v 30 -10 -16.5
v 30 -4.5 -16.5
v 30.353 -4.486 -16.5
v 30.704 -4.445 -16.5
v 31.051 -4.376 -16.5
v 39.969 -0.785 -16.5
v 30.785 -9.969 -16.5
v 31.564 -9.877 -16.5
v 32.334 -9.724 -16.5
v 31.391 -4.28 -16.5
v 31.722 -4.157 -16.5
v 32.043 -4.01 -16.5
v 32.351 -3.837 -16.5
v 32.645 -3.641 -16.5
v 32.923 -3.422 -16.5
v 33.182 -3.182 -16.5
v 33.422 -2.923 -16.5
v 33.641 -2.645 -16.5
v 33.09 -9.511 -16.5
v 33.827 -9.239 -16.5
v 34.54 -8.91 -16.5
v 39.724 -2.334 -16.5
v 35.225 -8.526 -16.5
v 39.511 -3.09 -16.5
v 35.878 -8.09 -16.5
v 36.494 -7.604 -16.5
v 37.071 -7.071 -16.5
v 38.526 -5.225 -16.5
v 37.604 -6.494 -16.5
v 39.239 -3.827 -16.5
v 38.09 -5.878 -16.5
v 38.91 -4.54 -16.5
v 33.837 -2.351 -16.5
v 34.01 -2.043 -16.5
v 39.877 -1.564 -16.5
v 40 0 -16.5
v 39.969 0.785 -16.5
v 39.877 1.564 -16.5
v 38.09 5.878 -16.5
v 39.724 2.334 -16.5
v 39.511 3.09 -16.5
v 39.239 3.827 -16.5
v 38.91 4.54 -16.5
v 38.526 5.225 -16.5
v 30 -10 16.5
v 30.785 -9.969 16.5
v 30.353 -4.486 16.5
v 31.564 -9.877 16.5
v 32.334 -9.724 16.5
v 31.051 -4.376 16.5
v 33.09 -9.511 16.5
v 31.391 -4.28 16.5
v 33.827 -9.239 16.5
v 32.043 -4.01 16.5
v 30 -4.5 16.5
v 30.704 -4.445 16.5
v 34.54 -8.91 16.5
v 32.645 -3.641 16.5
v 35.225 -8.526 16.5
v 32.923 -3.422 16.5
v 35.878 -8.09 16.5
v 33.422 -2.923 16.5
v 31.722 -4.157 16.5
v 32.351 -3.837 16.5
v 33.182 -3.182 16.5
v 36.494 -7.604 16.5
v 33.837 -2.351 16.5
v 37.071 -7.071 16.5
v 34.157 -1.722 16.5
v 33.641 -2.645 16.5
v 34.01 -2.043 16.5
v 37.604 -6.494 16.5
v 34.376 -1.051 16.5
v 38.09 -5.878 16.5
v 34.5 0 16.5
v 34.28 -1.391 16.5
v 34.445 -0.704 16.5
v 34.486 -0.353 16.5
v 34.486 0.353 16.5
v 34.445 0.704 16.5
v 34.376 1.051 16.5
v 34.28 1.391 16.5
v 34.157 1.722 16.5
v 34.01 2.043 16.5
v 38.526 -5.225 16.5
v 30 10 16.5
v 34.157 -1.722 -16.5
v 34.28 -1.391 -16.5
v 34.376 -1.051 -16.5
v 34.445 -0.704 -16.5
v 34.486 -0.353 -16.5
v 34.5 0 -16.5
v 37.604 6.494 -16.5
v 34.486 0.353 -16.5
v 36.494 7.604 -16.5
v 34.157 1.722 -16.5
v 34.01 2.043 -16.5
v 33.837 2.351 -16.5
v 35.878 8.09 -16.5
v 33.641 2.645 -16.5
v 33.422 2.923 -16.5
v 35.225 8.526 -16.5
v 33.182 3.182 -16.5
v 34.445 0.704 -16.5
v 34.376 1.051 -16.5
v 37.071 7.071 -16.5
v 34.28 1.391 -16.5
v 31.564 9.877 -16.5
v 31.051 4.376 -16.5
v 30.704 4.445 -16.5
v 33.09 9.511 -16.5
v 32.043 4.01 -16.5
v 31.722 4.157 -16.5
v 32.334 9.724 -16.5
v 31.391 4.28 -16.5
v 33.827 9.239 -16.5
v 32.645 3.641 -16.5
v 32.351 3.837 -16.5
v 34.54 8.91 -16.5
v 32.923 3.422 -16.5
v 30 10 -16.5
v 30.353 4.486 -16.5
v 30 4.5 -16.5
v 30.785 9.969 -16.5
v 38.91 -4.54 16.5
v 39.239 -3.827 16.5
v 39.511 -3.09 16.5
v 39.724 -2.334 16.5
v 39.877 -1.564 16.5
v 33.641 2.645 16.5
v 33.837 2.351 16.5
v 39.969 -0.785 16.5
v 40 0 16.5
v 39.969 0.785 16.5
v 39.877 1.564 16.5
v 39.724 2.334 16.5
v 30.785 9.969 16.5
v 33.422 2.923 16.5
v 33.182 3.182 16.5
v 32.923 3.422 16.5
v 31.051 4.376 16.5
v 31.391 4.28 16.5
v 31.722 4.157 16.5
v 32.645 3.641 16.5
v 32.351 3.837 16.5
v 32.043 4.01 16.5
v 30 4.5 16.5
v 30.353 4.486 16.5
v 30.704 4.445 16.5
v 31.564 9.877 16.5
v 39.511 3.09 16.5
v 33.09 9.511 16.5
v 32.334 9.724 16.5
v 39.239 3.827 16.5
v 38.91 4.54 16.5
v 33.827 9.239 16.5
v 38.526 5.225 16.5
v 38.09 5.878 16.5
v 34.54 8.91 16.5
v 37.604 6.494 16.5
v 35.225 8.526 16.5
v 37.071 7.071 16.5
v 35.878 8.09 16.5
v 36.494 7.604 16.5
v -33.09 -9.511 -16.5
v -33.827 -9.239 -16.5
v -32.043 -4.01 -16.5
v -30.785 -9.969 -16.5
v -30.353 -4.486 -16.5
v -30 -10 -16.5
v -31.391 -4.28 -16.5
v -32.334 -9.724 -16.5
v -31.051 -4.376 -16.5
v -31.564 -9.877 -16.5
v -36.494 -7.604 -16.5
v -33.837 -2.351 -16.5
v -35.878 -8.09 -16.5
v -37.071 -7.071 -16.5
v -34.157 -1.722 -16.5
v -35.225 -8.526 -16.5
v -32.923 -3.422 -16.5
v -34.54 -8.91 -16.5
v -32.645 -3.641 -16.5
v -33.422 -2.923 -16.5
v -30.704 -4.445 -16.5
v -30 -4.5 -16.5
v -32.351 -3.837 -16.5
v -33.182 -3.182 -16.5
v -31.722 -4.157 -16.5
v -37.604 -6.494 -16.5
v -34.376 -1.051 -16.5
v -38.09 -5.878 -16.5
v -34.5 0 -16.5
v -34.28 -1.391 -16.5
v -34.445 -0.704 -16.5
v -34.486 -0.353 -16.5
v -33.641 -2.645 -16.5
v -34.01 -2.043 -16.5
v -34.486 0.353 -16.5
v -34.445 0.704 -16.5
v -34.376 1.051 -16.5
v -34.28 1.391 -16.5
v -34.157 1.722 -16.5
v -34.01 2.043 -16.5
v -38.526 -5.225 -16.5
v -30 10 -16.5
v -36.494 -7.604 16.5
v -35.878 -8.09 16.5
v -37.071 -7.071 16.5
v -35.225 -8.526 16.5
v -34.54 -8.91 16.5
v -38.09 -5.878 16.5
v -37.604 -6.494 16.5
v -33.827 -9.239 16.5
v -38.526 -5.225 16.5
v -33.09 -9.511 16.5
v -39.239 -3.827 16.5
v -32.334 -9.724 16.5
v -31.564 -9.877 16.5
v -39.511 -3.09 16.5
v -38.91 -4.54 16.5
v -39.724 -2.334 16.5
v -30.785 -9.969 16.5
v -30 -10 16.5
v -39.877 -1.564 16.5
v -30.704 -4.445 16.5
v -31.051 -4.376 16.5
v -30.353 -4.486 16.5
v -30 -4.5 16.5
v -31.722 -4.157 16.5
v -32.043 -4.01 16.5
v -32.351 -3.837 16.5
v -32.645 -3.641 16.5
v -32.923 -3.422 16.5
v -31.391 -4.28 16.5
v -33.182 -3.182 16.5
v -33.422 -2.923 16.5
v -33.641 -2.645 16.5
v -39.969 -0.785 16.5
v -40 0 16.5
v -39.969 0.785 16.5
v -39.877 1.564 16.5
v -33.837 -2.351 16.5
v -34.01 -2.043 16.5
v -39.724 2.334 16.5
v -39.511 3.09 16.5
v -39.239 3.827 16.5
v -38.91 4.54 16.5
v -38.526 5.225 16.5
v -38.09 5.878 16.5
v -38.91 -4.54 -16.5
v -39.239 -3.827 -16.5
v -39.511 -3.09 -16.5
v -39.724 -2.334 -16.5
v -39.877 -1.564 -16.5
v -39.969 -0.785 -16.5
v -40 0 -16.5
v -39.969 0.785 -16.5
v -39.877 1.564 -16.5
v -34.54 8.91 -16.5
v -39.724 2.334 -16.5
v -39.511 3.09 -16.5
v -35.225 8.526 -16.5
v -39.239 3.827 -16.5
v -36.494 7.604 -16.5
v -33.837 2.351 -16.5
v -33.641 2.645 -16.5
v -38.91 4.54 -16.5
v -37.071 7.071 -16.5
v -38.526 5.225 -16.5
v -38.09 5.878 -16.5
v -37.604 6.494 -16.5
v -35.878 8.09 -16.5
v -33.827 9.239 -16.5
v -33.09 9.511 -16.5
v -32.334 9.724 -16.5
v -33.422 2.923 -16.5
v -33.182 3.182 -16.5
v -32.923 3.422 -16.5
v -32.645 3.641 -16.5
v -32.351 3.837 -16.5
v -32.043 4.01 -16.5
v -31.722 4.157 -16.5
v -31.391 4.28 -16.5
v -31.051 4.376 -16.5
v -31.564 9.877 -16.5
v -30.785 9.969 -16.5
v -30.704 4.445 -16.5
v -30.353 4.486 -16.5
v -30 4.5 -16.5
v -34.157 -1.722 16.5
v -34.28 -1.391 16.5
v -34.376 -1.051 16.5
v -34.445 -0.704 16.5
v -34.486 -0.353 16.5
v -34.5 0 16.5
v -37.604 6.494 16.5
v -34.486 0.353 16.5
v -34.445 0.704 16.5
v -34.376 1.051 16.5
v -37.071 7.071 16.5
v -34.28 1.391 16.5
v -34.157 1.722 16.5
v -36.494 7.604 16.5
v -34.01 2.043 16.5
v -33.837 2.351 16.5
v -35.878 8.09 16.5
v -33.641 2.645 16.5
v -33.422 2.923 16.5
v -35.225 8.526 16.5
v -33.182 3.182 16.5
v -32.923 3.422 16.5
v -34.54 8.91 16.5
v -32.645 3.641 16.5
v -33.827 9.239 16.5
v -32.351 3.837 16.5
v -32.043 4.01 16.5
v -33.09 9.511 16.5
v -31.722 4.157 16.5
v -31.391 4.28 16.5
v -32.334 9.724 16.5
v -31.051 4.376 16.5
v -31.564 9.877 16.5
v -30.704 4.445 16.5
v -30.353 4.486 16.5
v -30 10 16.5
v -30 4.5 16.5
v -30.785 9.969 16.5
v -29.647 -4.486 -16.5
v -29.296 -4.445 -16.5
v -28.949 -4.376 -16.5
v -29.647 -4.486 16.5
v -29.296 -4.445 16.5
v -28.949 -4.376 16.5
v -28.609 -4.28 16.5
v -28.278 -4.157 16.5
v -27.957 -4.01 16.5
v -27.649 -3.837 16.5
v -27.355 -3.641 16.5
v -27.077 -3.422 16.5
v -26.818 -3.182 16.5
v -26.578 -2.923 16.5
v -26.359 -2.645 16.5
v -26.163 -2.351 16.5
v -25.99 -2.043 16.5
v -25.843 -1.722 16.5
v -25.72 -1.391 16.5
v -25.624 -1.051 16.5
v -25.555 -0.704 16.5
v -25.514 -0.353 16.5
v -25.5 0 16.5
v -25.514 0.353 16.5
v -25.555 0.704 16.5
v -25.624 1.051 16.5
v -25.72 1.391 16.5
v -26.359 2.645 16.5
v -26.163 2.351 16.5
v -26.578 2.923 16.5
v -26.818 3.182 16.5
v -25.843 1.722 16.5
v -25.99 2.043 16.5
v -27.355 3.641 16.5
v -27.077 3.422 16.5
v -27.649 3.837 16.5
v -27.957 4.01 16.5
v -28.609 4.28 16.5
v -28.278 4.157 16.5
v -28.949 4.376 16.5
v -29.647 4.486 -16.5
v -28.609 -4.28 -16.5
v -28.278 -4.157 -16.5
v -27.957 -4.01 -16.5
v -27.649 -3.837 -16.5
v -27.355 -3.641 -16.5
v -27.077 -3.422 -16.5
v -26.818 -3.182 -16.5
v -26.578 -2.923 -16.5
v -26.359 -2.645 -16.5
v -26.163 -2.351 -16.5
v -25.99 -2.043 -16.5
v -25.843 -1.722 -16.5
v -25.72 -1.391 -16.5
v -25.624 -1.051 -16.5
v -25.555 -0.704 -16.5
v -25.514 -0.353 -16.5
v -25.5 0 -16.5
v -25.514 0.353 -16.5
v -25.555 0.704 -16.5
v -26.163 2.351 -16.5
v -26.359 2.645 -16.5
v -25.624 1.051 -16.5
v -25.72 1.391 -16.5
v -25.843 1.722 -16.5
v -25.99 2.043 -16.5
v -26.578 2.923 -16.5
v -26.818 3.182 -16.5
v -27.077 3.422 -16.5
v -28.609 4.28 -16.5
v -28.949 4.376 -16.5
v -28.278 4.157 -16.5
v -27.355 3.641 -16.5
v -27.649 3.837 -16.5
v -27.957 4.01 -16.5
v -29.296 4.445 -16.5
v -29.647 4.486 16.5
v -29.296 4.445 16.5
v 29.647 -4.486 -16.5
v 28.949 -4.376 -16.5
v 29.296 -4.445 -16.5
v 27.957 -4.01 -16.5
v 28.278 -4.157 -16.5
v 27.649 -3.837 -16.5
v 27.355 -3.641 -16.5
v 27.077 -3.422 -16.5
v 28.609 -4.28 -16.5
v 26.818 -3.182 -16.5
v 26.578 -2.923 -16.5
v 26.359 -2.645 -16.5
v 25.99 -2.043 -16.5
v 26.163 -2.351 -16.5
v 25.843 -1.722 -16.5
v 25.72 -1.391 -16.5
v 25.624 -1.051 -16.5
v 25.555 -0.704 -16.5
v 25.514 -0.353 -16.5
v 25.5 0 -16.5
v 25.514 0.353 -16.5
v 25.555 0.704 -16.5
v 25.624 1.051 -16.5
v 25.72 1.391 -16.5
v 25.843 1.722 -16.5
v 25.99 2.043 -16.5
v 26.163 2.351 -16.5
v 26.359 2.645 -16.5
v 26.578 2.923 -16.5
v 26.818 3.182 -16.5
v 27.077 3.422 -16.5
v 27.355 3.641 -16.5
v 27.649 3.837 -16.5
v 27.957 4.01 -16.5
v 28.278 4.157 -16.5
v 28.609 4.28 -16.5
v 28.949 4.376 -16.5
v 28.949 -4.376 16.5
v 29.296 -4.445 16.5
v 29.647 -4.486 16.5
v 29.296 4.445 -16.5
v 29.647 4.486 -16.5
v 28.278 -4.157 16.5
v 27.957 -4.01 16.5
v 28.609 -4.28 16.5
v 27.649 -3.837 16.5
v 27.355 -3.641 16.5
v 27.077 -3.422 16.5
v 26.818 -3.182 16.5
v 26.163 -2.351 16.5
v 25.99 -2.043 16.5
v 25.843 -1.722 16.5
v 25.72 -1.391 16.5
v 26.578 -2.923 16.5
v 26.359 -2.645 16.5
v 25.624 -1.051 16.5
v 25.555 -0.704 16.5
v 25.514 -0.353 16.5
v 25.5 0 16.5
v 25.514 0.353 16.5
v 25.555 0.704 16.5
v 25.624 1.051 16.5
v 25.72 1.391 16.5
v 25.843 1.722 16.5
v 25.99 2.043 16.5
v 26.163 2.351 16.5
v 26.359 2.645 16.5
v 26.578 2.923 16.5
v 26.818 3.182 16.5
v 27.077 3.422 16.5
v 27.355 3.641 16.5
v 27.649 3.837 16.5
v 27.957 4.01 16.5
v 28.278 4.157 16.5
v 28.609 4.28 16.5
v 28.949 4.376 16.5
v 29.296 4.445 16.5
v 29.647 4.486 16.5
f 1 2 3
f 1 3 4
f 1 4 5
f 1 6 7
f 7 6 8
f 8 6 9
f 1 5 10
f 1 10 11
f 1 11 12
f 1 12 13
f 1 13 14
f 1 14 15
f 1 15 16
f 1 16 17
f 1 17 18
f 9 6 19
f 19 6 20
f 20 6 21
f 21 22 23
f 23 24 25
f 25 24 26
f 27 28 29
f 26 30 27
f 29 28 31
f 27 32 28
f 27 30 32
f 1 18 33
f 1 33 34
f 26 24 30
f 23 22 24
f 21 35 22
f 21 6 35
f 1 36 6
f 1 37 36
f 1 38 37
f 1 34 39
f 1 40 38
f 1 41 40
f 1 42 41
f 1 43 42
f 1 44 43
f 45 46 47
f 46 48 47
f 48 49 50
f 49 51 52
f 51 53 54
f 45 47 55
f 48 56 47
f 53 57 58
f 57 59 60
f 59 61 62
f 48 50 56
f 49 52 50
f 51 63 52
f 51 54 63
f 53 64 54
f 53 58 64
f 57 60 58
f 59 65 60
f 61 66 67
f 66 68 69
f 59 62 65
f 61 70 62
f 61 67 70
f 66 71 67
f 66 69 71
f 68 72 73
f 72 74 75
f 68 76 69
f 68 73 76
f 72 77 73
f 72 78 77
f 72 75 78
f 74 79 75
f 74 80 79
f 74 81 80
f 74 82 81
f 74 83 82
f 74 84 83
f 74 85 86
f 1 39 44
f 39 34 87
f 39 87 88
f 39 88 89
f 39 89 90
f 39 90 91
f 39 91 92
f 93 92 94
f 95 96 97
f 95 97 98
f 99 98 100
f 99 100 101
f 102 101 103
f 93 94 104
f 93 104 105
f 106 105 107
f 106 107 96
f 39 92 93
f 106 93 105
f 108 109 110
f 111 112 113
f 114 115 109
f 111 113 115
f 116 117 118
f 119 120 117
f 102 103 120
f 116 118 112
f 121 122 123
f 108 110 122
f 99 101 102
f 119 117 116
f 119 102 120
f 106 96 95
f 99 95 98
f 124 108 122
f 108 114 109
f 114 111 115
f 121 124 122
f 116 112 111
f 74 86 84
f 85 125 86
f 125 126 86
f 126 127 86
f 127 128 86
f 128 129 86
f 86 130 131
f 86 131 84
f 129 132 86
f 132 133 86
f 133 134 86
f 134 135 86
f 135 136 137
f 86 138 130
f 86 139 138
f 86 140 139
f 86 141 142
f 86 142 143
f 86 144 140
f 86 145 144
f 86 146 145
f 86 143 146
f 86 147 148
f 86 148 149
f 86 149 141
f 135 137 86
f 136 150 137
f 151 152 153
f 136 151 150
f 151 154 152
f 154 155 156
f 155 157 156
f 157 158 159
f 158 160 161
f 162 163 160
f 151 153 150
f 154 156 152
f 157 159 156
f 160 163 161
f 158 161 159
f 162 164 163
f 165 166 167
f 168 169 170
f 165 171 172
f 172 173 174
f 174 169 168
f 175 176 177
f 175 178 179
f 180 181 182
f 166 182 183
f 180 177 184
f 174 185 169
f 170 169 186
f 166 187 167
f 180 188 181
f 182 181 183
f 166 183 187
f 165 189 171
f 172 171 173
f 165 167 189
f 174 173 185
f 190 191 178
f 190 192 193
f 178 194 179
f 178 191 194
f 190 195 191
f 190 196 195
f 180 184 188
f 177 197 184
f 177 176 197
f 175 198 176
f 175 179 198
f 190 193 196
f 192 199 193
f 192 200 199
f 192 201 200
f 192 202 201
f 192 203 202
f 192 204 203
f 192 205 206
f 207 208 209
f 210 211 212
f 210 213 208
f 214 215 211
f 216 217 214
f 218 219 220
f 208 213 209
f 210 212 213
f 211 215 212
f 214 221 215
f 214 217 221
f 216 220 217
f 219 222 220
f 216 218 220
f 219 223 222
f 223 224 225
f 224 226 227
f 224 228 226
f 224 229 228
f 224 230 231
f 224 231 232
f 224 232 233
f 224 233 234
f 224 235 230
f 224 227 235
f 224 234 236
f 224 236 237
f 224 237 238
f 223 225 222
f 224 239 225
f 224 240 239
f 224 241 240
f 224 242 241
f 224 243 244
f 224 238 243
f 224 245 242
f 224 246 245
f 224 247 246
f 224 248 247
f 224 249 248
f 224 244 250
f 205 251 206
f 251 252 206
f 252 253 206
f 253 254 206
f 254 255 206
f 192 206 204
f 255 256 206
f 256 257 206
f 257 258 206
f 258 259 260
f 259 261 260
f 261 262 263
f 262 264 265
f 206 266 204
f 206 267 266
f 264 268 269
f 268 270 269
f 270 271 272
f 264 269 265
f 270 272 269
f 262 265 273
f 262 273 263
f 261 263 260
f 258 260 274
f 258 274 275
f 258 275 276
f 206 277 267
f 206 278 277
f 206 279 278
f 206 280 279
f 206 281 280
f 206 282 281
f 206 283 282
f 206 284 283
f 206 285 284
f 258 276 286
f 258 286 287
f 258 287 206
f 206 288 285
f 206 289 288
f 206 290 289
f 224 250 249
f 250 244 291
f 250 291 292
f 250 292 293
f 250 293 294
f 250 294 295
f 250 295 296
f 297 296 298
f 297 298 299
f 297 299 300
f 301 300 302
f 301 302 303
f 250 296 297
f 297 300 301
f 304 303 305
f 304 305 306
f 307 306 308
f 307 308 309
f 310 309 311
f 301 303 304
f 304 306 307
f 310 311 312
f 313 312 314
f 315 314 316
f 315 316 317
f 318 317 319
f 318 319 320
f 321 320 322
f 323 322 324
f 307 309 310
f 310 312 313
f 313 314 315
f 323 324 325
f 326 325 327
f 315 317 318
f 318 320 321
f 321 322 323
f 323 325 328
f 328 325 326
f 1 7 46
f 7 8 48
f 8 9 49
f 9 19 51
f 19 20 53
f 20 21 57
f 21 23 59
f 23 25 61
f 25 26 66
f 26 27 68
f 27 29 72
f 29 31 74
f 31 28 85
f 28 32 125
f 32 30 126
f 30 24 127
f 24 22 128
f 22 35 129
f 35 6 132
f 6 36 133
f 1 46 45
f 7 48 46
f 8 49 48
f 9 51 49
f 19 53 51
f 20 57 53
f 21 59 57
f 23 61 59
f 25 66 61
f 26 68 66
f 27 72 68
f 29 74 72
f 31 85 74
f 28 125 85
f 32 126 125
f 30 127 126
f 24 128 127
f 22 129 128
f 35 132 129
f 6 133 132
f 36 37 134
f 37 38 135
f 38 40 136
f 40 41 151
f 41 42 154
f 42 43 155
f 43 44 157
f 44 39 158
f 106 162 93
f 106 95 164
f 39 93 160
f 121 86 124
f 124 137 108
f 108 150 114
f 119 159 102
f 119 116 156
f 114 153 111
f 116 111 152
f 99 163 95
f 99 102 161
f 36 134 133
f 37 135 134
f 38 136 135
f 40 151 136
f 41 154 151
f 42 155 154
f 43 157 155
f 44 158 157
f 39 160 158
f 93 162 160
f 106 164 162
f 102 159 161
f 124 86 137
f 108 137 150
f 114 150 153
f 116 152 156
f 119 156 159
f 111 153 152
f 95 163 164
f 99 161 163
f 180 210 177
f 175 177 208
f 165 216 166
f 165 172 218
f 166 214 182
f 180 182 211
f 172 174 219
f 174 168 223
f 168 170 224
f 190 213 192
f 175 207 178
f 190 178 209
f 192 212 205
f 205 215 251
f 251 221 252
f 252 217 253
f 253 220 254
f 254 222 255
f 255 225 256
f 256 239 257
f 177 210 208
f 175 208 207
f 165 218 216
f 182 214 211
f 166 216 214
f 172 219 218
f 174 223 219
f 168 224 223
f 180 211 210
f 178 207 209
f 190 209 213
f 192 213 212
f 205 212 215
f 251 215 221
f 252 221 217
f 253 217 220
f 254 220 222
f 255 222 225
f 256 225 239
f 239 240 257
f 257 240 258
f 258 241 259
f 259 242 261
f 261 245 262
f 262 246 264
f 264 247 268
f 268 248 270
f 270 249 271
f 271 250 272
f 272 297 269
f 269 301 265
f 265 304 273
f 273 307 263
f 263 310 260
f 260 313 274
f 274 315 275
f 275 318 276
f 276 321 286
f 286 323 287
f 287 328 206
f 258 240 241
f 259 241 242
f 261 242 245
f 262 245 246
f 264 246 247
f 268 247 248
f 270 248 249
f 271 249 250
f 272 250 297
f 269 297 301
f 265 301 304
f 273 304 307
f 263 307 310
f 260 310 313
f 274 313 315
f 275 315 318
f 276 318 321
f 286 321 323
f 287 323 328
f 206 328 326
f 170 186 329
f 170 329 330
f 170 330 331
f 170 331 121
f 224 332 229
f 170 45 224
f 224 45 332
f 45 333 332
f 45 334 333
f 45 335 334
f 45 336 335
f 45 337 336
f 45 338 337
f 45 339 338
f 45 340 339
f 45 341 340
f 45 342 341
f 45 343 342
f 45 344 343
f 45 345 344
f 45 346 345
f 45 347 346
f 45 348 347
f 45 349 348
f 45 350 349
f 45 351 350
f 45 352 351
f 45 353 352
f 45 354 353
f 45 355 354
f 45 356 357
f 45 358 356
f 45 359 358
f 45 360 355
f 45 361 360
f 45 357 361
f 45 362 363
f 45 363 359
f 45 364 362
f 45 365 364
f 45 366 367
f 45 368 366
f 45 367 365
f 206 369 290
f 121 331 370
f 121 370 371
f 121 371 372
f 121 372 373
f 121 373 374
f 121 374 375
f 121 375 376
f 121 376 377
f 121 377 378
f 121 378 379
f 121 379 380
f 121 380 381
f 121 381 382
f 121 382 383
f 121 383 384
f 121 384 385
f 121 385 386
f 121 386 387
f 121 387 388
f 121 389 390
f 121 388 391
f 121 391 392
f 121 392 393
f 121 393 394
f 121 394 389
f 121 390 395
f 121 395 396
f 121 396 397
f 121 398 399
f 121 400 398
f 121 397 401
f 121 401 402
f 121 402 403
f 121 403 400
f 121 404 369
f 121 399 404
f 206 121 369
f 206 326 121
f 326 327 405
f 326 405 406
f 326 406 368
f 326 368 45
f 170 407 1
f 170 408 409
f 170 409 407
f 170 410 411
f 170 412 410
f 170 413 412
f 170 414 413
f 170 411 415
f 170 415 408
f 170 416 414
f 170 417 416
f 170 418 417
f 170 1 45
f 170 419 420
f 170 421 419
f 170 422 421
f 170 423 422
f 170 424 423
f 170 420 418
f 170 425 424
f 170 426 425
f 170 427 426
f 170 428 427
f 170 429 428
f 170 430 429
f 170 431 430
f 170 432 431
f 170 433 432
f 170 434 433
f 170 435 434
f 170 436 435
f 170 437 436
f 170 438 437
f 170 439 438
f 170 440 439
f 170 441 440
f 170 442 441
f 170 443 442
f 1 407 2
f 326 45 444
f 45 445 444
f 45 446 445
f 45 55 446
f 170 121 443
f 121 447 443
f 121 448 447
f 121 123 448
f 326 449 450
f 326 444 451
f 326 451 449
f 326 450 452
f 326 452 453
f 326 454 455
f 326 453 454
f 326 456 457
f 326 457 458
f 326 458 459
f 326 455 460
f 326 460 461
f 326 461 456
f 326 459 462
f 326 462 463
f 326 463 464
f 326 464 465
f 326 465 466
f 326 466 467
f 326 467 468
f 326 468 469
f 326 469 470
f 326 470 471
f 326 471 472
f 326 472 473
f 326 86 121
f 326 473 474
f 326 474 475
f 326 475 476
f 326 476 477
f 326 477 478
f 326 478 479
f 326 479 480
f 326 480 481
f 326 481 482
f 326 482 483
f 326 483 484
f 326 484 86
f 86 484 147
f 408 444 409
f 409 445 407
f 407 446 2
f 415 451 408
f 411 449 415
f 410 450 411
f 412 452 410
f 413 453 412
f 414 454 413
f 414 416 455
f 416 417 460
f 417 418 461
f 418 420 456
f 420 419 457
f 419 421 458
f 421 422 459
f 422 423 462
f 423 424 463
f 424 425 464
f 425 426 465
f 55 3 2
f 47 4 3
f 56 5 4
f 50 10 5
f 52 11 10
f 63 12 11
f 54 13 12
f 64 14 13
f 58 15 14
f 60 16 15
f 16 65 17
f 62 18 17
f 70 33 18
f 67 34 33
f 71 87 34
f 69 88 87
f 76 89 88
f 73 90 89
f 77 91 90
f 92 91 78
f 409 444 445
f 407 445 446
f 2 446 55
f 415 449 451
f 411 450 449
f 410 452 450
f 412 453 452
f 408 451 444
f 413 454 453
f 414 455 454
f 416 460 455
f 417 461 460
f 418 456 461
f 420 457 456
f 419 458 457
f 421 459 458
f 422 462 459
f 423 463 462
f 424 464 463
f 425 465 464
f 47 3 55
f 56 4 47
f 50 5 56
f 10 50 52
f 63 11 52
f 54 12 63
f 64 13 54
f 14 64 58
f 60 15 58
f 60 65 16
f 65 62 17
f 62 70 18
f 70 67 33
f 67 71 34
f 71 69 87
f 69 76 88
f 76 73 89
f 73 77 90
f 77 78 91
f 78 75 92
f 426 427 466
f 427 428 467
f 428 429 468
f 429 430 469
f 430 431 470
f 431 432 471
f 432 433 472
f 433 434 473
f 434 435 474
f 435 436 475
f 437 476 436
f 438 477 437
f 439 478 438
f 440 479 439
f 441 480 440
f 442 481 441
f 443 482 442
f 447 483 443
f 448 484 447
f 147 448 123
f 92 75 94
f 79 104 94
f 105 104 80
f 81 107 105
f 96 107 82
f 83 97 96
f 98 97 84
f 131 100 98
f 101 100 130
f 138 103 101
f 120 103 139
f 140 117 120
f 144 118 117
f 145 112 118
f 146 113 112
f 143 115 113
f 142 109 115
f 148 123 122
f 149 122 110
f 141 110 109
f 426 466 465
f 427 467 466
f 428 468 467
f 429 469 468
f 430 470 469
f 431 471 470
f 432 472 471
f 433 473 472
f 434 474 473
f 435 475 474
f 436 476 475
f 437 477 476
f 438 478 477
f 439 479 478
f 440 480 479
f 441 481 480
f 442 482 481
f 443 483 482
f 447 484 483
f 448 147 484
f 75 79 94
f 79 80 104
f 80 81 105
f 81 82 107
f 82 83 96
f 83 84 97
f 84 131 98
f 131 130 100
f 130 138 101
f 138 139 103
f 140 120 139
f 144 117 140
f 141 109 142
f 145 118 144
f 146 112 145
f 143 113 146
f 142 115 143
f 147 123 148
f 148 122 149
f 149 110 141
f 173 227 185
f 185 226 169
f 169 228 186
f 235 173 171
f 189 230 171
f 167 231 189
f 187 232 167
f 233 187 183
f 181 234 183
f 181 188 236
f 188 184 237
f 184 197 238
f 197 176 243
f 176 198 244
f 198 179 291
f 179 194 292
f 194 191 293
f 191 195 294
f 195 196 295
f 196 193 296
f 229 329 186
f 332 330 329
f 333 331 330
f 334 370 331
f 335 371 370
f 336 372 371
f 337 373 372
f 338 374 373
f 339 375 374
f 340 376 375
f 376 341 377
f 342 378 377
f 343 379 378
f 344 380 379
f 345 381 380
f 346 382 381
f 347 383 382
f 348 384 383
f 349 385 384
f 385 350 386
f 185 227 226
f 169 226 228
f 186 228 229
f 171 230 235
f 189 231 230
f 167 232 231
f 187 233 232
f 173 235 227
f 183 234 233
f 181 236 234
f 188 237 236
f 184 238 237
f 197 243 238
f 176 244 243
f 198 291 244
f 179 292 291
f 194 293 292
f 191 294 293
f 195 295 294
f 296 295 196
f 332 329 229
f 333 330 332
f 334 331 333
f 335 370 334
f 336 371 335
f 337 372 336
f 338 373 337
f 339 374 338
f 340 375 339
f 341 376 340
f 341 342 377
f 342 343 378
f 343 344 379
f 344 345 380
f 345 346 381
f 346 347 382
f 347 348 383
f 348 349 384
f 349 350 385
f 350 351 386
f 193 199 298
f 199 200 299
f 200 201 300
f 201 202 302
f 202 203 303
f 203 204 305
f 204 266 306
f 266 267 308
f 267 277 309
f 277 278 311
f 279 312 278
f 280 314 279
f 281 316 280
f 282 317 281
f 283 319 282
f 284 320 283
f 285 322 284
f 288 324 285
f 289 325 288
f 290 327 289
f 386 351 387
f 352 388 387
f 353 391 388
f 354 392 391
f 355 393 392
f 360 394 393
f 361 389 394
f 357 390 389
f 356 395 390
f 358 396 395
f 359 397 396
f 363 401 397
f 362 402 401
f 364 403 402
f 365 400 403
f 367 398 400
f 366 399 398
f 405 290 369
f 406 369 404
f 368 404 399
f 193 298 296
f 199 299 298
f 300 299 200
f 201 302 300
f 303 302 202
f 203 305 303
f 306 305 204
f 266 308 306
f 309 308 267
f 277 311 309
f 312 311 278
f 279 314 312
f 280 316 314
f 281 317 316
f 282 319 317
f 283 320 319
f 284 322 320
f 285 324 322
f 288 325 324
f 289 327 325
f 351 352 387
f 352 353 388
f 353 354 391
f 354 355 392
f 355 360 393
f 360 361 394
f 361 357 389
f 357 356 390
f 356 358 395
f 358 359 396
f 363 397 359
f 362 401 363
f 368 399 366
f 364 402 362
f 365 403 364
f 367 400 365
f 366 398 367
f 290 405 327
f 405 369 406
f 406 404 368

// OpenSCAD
$fn=80;
length=60;
width=20;
height=33;

boltDiameter=9;

module boltHoles() {
    module boltHole() {
        translate([0,0,-(height+10)/2]) {
            cylinder(d=boltDiameter,h=height+10);
        }
    }

    translate([(length/2),0,0]) {
        boltHole();
    }
    translate([-(length/2),0,0]) {
        boltHole();
    }
}

module cornerRounder() {
    intersection() {
        cube([width,width,height], center=true);
        translate([width/2,0,-((height)/2)]) cylinder(d=width, h=height+10);
    }
}

difference() {
    union() {
        cube([length,width, height], center=true);
        translate([-((length/2)+width/2),0,0]) cornerRounder();
        rotate([0,0,180]) translate([-((length/2)+width/2),0,0]) cornerRounder();
    }
    boltHoles();
}
